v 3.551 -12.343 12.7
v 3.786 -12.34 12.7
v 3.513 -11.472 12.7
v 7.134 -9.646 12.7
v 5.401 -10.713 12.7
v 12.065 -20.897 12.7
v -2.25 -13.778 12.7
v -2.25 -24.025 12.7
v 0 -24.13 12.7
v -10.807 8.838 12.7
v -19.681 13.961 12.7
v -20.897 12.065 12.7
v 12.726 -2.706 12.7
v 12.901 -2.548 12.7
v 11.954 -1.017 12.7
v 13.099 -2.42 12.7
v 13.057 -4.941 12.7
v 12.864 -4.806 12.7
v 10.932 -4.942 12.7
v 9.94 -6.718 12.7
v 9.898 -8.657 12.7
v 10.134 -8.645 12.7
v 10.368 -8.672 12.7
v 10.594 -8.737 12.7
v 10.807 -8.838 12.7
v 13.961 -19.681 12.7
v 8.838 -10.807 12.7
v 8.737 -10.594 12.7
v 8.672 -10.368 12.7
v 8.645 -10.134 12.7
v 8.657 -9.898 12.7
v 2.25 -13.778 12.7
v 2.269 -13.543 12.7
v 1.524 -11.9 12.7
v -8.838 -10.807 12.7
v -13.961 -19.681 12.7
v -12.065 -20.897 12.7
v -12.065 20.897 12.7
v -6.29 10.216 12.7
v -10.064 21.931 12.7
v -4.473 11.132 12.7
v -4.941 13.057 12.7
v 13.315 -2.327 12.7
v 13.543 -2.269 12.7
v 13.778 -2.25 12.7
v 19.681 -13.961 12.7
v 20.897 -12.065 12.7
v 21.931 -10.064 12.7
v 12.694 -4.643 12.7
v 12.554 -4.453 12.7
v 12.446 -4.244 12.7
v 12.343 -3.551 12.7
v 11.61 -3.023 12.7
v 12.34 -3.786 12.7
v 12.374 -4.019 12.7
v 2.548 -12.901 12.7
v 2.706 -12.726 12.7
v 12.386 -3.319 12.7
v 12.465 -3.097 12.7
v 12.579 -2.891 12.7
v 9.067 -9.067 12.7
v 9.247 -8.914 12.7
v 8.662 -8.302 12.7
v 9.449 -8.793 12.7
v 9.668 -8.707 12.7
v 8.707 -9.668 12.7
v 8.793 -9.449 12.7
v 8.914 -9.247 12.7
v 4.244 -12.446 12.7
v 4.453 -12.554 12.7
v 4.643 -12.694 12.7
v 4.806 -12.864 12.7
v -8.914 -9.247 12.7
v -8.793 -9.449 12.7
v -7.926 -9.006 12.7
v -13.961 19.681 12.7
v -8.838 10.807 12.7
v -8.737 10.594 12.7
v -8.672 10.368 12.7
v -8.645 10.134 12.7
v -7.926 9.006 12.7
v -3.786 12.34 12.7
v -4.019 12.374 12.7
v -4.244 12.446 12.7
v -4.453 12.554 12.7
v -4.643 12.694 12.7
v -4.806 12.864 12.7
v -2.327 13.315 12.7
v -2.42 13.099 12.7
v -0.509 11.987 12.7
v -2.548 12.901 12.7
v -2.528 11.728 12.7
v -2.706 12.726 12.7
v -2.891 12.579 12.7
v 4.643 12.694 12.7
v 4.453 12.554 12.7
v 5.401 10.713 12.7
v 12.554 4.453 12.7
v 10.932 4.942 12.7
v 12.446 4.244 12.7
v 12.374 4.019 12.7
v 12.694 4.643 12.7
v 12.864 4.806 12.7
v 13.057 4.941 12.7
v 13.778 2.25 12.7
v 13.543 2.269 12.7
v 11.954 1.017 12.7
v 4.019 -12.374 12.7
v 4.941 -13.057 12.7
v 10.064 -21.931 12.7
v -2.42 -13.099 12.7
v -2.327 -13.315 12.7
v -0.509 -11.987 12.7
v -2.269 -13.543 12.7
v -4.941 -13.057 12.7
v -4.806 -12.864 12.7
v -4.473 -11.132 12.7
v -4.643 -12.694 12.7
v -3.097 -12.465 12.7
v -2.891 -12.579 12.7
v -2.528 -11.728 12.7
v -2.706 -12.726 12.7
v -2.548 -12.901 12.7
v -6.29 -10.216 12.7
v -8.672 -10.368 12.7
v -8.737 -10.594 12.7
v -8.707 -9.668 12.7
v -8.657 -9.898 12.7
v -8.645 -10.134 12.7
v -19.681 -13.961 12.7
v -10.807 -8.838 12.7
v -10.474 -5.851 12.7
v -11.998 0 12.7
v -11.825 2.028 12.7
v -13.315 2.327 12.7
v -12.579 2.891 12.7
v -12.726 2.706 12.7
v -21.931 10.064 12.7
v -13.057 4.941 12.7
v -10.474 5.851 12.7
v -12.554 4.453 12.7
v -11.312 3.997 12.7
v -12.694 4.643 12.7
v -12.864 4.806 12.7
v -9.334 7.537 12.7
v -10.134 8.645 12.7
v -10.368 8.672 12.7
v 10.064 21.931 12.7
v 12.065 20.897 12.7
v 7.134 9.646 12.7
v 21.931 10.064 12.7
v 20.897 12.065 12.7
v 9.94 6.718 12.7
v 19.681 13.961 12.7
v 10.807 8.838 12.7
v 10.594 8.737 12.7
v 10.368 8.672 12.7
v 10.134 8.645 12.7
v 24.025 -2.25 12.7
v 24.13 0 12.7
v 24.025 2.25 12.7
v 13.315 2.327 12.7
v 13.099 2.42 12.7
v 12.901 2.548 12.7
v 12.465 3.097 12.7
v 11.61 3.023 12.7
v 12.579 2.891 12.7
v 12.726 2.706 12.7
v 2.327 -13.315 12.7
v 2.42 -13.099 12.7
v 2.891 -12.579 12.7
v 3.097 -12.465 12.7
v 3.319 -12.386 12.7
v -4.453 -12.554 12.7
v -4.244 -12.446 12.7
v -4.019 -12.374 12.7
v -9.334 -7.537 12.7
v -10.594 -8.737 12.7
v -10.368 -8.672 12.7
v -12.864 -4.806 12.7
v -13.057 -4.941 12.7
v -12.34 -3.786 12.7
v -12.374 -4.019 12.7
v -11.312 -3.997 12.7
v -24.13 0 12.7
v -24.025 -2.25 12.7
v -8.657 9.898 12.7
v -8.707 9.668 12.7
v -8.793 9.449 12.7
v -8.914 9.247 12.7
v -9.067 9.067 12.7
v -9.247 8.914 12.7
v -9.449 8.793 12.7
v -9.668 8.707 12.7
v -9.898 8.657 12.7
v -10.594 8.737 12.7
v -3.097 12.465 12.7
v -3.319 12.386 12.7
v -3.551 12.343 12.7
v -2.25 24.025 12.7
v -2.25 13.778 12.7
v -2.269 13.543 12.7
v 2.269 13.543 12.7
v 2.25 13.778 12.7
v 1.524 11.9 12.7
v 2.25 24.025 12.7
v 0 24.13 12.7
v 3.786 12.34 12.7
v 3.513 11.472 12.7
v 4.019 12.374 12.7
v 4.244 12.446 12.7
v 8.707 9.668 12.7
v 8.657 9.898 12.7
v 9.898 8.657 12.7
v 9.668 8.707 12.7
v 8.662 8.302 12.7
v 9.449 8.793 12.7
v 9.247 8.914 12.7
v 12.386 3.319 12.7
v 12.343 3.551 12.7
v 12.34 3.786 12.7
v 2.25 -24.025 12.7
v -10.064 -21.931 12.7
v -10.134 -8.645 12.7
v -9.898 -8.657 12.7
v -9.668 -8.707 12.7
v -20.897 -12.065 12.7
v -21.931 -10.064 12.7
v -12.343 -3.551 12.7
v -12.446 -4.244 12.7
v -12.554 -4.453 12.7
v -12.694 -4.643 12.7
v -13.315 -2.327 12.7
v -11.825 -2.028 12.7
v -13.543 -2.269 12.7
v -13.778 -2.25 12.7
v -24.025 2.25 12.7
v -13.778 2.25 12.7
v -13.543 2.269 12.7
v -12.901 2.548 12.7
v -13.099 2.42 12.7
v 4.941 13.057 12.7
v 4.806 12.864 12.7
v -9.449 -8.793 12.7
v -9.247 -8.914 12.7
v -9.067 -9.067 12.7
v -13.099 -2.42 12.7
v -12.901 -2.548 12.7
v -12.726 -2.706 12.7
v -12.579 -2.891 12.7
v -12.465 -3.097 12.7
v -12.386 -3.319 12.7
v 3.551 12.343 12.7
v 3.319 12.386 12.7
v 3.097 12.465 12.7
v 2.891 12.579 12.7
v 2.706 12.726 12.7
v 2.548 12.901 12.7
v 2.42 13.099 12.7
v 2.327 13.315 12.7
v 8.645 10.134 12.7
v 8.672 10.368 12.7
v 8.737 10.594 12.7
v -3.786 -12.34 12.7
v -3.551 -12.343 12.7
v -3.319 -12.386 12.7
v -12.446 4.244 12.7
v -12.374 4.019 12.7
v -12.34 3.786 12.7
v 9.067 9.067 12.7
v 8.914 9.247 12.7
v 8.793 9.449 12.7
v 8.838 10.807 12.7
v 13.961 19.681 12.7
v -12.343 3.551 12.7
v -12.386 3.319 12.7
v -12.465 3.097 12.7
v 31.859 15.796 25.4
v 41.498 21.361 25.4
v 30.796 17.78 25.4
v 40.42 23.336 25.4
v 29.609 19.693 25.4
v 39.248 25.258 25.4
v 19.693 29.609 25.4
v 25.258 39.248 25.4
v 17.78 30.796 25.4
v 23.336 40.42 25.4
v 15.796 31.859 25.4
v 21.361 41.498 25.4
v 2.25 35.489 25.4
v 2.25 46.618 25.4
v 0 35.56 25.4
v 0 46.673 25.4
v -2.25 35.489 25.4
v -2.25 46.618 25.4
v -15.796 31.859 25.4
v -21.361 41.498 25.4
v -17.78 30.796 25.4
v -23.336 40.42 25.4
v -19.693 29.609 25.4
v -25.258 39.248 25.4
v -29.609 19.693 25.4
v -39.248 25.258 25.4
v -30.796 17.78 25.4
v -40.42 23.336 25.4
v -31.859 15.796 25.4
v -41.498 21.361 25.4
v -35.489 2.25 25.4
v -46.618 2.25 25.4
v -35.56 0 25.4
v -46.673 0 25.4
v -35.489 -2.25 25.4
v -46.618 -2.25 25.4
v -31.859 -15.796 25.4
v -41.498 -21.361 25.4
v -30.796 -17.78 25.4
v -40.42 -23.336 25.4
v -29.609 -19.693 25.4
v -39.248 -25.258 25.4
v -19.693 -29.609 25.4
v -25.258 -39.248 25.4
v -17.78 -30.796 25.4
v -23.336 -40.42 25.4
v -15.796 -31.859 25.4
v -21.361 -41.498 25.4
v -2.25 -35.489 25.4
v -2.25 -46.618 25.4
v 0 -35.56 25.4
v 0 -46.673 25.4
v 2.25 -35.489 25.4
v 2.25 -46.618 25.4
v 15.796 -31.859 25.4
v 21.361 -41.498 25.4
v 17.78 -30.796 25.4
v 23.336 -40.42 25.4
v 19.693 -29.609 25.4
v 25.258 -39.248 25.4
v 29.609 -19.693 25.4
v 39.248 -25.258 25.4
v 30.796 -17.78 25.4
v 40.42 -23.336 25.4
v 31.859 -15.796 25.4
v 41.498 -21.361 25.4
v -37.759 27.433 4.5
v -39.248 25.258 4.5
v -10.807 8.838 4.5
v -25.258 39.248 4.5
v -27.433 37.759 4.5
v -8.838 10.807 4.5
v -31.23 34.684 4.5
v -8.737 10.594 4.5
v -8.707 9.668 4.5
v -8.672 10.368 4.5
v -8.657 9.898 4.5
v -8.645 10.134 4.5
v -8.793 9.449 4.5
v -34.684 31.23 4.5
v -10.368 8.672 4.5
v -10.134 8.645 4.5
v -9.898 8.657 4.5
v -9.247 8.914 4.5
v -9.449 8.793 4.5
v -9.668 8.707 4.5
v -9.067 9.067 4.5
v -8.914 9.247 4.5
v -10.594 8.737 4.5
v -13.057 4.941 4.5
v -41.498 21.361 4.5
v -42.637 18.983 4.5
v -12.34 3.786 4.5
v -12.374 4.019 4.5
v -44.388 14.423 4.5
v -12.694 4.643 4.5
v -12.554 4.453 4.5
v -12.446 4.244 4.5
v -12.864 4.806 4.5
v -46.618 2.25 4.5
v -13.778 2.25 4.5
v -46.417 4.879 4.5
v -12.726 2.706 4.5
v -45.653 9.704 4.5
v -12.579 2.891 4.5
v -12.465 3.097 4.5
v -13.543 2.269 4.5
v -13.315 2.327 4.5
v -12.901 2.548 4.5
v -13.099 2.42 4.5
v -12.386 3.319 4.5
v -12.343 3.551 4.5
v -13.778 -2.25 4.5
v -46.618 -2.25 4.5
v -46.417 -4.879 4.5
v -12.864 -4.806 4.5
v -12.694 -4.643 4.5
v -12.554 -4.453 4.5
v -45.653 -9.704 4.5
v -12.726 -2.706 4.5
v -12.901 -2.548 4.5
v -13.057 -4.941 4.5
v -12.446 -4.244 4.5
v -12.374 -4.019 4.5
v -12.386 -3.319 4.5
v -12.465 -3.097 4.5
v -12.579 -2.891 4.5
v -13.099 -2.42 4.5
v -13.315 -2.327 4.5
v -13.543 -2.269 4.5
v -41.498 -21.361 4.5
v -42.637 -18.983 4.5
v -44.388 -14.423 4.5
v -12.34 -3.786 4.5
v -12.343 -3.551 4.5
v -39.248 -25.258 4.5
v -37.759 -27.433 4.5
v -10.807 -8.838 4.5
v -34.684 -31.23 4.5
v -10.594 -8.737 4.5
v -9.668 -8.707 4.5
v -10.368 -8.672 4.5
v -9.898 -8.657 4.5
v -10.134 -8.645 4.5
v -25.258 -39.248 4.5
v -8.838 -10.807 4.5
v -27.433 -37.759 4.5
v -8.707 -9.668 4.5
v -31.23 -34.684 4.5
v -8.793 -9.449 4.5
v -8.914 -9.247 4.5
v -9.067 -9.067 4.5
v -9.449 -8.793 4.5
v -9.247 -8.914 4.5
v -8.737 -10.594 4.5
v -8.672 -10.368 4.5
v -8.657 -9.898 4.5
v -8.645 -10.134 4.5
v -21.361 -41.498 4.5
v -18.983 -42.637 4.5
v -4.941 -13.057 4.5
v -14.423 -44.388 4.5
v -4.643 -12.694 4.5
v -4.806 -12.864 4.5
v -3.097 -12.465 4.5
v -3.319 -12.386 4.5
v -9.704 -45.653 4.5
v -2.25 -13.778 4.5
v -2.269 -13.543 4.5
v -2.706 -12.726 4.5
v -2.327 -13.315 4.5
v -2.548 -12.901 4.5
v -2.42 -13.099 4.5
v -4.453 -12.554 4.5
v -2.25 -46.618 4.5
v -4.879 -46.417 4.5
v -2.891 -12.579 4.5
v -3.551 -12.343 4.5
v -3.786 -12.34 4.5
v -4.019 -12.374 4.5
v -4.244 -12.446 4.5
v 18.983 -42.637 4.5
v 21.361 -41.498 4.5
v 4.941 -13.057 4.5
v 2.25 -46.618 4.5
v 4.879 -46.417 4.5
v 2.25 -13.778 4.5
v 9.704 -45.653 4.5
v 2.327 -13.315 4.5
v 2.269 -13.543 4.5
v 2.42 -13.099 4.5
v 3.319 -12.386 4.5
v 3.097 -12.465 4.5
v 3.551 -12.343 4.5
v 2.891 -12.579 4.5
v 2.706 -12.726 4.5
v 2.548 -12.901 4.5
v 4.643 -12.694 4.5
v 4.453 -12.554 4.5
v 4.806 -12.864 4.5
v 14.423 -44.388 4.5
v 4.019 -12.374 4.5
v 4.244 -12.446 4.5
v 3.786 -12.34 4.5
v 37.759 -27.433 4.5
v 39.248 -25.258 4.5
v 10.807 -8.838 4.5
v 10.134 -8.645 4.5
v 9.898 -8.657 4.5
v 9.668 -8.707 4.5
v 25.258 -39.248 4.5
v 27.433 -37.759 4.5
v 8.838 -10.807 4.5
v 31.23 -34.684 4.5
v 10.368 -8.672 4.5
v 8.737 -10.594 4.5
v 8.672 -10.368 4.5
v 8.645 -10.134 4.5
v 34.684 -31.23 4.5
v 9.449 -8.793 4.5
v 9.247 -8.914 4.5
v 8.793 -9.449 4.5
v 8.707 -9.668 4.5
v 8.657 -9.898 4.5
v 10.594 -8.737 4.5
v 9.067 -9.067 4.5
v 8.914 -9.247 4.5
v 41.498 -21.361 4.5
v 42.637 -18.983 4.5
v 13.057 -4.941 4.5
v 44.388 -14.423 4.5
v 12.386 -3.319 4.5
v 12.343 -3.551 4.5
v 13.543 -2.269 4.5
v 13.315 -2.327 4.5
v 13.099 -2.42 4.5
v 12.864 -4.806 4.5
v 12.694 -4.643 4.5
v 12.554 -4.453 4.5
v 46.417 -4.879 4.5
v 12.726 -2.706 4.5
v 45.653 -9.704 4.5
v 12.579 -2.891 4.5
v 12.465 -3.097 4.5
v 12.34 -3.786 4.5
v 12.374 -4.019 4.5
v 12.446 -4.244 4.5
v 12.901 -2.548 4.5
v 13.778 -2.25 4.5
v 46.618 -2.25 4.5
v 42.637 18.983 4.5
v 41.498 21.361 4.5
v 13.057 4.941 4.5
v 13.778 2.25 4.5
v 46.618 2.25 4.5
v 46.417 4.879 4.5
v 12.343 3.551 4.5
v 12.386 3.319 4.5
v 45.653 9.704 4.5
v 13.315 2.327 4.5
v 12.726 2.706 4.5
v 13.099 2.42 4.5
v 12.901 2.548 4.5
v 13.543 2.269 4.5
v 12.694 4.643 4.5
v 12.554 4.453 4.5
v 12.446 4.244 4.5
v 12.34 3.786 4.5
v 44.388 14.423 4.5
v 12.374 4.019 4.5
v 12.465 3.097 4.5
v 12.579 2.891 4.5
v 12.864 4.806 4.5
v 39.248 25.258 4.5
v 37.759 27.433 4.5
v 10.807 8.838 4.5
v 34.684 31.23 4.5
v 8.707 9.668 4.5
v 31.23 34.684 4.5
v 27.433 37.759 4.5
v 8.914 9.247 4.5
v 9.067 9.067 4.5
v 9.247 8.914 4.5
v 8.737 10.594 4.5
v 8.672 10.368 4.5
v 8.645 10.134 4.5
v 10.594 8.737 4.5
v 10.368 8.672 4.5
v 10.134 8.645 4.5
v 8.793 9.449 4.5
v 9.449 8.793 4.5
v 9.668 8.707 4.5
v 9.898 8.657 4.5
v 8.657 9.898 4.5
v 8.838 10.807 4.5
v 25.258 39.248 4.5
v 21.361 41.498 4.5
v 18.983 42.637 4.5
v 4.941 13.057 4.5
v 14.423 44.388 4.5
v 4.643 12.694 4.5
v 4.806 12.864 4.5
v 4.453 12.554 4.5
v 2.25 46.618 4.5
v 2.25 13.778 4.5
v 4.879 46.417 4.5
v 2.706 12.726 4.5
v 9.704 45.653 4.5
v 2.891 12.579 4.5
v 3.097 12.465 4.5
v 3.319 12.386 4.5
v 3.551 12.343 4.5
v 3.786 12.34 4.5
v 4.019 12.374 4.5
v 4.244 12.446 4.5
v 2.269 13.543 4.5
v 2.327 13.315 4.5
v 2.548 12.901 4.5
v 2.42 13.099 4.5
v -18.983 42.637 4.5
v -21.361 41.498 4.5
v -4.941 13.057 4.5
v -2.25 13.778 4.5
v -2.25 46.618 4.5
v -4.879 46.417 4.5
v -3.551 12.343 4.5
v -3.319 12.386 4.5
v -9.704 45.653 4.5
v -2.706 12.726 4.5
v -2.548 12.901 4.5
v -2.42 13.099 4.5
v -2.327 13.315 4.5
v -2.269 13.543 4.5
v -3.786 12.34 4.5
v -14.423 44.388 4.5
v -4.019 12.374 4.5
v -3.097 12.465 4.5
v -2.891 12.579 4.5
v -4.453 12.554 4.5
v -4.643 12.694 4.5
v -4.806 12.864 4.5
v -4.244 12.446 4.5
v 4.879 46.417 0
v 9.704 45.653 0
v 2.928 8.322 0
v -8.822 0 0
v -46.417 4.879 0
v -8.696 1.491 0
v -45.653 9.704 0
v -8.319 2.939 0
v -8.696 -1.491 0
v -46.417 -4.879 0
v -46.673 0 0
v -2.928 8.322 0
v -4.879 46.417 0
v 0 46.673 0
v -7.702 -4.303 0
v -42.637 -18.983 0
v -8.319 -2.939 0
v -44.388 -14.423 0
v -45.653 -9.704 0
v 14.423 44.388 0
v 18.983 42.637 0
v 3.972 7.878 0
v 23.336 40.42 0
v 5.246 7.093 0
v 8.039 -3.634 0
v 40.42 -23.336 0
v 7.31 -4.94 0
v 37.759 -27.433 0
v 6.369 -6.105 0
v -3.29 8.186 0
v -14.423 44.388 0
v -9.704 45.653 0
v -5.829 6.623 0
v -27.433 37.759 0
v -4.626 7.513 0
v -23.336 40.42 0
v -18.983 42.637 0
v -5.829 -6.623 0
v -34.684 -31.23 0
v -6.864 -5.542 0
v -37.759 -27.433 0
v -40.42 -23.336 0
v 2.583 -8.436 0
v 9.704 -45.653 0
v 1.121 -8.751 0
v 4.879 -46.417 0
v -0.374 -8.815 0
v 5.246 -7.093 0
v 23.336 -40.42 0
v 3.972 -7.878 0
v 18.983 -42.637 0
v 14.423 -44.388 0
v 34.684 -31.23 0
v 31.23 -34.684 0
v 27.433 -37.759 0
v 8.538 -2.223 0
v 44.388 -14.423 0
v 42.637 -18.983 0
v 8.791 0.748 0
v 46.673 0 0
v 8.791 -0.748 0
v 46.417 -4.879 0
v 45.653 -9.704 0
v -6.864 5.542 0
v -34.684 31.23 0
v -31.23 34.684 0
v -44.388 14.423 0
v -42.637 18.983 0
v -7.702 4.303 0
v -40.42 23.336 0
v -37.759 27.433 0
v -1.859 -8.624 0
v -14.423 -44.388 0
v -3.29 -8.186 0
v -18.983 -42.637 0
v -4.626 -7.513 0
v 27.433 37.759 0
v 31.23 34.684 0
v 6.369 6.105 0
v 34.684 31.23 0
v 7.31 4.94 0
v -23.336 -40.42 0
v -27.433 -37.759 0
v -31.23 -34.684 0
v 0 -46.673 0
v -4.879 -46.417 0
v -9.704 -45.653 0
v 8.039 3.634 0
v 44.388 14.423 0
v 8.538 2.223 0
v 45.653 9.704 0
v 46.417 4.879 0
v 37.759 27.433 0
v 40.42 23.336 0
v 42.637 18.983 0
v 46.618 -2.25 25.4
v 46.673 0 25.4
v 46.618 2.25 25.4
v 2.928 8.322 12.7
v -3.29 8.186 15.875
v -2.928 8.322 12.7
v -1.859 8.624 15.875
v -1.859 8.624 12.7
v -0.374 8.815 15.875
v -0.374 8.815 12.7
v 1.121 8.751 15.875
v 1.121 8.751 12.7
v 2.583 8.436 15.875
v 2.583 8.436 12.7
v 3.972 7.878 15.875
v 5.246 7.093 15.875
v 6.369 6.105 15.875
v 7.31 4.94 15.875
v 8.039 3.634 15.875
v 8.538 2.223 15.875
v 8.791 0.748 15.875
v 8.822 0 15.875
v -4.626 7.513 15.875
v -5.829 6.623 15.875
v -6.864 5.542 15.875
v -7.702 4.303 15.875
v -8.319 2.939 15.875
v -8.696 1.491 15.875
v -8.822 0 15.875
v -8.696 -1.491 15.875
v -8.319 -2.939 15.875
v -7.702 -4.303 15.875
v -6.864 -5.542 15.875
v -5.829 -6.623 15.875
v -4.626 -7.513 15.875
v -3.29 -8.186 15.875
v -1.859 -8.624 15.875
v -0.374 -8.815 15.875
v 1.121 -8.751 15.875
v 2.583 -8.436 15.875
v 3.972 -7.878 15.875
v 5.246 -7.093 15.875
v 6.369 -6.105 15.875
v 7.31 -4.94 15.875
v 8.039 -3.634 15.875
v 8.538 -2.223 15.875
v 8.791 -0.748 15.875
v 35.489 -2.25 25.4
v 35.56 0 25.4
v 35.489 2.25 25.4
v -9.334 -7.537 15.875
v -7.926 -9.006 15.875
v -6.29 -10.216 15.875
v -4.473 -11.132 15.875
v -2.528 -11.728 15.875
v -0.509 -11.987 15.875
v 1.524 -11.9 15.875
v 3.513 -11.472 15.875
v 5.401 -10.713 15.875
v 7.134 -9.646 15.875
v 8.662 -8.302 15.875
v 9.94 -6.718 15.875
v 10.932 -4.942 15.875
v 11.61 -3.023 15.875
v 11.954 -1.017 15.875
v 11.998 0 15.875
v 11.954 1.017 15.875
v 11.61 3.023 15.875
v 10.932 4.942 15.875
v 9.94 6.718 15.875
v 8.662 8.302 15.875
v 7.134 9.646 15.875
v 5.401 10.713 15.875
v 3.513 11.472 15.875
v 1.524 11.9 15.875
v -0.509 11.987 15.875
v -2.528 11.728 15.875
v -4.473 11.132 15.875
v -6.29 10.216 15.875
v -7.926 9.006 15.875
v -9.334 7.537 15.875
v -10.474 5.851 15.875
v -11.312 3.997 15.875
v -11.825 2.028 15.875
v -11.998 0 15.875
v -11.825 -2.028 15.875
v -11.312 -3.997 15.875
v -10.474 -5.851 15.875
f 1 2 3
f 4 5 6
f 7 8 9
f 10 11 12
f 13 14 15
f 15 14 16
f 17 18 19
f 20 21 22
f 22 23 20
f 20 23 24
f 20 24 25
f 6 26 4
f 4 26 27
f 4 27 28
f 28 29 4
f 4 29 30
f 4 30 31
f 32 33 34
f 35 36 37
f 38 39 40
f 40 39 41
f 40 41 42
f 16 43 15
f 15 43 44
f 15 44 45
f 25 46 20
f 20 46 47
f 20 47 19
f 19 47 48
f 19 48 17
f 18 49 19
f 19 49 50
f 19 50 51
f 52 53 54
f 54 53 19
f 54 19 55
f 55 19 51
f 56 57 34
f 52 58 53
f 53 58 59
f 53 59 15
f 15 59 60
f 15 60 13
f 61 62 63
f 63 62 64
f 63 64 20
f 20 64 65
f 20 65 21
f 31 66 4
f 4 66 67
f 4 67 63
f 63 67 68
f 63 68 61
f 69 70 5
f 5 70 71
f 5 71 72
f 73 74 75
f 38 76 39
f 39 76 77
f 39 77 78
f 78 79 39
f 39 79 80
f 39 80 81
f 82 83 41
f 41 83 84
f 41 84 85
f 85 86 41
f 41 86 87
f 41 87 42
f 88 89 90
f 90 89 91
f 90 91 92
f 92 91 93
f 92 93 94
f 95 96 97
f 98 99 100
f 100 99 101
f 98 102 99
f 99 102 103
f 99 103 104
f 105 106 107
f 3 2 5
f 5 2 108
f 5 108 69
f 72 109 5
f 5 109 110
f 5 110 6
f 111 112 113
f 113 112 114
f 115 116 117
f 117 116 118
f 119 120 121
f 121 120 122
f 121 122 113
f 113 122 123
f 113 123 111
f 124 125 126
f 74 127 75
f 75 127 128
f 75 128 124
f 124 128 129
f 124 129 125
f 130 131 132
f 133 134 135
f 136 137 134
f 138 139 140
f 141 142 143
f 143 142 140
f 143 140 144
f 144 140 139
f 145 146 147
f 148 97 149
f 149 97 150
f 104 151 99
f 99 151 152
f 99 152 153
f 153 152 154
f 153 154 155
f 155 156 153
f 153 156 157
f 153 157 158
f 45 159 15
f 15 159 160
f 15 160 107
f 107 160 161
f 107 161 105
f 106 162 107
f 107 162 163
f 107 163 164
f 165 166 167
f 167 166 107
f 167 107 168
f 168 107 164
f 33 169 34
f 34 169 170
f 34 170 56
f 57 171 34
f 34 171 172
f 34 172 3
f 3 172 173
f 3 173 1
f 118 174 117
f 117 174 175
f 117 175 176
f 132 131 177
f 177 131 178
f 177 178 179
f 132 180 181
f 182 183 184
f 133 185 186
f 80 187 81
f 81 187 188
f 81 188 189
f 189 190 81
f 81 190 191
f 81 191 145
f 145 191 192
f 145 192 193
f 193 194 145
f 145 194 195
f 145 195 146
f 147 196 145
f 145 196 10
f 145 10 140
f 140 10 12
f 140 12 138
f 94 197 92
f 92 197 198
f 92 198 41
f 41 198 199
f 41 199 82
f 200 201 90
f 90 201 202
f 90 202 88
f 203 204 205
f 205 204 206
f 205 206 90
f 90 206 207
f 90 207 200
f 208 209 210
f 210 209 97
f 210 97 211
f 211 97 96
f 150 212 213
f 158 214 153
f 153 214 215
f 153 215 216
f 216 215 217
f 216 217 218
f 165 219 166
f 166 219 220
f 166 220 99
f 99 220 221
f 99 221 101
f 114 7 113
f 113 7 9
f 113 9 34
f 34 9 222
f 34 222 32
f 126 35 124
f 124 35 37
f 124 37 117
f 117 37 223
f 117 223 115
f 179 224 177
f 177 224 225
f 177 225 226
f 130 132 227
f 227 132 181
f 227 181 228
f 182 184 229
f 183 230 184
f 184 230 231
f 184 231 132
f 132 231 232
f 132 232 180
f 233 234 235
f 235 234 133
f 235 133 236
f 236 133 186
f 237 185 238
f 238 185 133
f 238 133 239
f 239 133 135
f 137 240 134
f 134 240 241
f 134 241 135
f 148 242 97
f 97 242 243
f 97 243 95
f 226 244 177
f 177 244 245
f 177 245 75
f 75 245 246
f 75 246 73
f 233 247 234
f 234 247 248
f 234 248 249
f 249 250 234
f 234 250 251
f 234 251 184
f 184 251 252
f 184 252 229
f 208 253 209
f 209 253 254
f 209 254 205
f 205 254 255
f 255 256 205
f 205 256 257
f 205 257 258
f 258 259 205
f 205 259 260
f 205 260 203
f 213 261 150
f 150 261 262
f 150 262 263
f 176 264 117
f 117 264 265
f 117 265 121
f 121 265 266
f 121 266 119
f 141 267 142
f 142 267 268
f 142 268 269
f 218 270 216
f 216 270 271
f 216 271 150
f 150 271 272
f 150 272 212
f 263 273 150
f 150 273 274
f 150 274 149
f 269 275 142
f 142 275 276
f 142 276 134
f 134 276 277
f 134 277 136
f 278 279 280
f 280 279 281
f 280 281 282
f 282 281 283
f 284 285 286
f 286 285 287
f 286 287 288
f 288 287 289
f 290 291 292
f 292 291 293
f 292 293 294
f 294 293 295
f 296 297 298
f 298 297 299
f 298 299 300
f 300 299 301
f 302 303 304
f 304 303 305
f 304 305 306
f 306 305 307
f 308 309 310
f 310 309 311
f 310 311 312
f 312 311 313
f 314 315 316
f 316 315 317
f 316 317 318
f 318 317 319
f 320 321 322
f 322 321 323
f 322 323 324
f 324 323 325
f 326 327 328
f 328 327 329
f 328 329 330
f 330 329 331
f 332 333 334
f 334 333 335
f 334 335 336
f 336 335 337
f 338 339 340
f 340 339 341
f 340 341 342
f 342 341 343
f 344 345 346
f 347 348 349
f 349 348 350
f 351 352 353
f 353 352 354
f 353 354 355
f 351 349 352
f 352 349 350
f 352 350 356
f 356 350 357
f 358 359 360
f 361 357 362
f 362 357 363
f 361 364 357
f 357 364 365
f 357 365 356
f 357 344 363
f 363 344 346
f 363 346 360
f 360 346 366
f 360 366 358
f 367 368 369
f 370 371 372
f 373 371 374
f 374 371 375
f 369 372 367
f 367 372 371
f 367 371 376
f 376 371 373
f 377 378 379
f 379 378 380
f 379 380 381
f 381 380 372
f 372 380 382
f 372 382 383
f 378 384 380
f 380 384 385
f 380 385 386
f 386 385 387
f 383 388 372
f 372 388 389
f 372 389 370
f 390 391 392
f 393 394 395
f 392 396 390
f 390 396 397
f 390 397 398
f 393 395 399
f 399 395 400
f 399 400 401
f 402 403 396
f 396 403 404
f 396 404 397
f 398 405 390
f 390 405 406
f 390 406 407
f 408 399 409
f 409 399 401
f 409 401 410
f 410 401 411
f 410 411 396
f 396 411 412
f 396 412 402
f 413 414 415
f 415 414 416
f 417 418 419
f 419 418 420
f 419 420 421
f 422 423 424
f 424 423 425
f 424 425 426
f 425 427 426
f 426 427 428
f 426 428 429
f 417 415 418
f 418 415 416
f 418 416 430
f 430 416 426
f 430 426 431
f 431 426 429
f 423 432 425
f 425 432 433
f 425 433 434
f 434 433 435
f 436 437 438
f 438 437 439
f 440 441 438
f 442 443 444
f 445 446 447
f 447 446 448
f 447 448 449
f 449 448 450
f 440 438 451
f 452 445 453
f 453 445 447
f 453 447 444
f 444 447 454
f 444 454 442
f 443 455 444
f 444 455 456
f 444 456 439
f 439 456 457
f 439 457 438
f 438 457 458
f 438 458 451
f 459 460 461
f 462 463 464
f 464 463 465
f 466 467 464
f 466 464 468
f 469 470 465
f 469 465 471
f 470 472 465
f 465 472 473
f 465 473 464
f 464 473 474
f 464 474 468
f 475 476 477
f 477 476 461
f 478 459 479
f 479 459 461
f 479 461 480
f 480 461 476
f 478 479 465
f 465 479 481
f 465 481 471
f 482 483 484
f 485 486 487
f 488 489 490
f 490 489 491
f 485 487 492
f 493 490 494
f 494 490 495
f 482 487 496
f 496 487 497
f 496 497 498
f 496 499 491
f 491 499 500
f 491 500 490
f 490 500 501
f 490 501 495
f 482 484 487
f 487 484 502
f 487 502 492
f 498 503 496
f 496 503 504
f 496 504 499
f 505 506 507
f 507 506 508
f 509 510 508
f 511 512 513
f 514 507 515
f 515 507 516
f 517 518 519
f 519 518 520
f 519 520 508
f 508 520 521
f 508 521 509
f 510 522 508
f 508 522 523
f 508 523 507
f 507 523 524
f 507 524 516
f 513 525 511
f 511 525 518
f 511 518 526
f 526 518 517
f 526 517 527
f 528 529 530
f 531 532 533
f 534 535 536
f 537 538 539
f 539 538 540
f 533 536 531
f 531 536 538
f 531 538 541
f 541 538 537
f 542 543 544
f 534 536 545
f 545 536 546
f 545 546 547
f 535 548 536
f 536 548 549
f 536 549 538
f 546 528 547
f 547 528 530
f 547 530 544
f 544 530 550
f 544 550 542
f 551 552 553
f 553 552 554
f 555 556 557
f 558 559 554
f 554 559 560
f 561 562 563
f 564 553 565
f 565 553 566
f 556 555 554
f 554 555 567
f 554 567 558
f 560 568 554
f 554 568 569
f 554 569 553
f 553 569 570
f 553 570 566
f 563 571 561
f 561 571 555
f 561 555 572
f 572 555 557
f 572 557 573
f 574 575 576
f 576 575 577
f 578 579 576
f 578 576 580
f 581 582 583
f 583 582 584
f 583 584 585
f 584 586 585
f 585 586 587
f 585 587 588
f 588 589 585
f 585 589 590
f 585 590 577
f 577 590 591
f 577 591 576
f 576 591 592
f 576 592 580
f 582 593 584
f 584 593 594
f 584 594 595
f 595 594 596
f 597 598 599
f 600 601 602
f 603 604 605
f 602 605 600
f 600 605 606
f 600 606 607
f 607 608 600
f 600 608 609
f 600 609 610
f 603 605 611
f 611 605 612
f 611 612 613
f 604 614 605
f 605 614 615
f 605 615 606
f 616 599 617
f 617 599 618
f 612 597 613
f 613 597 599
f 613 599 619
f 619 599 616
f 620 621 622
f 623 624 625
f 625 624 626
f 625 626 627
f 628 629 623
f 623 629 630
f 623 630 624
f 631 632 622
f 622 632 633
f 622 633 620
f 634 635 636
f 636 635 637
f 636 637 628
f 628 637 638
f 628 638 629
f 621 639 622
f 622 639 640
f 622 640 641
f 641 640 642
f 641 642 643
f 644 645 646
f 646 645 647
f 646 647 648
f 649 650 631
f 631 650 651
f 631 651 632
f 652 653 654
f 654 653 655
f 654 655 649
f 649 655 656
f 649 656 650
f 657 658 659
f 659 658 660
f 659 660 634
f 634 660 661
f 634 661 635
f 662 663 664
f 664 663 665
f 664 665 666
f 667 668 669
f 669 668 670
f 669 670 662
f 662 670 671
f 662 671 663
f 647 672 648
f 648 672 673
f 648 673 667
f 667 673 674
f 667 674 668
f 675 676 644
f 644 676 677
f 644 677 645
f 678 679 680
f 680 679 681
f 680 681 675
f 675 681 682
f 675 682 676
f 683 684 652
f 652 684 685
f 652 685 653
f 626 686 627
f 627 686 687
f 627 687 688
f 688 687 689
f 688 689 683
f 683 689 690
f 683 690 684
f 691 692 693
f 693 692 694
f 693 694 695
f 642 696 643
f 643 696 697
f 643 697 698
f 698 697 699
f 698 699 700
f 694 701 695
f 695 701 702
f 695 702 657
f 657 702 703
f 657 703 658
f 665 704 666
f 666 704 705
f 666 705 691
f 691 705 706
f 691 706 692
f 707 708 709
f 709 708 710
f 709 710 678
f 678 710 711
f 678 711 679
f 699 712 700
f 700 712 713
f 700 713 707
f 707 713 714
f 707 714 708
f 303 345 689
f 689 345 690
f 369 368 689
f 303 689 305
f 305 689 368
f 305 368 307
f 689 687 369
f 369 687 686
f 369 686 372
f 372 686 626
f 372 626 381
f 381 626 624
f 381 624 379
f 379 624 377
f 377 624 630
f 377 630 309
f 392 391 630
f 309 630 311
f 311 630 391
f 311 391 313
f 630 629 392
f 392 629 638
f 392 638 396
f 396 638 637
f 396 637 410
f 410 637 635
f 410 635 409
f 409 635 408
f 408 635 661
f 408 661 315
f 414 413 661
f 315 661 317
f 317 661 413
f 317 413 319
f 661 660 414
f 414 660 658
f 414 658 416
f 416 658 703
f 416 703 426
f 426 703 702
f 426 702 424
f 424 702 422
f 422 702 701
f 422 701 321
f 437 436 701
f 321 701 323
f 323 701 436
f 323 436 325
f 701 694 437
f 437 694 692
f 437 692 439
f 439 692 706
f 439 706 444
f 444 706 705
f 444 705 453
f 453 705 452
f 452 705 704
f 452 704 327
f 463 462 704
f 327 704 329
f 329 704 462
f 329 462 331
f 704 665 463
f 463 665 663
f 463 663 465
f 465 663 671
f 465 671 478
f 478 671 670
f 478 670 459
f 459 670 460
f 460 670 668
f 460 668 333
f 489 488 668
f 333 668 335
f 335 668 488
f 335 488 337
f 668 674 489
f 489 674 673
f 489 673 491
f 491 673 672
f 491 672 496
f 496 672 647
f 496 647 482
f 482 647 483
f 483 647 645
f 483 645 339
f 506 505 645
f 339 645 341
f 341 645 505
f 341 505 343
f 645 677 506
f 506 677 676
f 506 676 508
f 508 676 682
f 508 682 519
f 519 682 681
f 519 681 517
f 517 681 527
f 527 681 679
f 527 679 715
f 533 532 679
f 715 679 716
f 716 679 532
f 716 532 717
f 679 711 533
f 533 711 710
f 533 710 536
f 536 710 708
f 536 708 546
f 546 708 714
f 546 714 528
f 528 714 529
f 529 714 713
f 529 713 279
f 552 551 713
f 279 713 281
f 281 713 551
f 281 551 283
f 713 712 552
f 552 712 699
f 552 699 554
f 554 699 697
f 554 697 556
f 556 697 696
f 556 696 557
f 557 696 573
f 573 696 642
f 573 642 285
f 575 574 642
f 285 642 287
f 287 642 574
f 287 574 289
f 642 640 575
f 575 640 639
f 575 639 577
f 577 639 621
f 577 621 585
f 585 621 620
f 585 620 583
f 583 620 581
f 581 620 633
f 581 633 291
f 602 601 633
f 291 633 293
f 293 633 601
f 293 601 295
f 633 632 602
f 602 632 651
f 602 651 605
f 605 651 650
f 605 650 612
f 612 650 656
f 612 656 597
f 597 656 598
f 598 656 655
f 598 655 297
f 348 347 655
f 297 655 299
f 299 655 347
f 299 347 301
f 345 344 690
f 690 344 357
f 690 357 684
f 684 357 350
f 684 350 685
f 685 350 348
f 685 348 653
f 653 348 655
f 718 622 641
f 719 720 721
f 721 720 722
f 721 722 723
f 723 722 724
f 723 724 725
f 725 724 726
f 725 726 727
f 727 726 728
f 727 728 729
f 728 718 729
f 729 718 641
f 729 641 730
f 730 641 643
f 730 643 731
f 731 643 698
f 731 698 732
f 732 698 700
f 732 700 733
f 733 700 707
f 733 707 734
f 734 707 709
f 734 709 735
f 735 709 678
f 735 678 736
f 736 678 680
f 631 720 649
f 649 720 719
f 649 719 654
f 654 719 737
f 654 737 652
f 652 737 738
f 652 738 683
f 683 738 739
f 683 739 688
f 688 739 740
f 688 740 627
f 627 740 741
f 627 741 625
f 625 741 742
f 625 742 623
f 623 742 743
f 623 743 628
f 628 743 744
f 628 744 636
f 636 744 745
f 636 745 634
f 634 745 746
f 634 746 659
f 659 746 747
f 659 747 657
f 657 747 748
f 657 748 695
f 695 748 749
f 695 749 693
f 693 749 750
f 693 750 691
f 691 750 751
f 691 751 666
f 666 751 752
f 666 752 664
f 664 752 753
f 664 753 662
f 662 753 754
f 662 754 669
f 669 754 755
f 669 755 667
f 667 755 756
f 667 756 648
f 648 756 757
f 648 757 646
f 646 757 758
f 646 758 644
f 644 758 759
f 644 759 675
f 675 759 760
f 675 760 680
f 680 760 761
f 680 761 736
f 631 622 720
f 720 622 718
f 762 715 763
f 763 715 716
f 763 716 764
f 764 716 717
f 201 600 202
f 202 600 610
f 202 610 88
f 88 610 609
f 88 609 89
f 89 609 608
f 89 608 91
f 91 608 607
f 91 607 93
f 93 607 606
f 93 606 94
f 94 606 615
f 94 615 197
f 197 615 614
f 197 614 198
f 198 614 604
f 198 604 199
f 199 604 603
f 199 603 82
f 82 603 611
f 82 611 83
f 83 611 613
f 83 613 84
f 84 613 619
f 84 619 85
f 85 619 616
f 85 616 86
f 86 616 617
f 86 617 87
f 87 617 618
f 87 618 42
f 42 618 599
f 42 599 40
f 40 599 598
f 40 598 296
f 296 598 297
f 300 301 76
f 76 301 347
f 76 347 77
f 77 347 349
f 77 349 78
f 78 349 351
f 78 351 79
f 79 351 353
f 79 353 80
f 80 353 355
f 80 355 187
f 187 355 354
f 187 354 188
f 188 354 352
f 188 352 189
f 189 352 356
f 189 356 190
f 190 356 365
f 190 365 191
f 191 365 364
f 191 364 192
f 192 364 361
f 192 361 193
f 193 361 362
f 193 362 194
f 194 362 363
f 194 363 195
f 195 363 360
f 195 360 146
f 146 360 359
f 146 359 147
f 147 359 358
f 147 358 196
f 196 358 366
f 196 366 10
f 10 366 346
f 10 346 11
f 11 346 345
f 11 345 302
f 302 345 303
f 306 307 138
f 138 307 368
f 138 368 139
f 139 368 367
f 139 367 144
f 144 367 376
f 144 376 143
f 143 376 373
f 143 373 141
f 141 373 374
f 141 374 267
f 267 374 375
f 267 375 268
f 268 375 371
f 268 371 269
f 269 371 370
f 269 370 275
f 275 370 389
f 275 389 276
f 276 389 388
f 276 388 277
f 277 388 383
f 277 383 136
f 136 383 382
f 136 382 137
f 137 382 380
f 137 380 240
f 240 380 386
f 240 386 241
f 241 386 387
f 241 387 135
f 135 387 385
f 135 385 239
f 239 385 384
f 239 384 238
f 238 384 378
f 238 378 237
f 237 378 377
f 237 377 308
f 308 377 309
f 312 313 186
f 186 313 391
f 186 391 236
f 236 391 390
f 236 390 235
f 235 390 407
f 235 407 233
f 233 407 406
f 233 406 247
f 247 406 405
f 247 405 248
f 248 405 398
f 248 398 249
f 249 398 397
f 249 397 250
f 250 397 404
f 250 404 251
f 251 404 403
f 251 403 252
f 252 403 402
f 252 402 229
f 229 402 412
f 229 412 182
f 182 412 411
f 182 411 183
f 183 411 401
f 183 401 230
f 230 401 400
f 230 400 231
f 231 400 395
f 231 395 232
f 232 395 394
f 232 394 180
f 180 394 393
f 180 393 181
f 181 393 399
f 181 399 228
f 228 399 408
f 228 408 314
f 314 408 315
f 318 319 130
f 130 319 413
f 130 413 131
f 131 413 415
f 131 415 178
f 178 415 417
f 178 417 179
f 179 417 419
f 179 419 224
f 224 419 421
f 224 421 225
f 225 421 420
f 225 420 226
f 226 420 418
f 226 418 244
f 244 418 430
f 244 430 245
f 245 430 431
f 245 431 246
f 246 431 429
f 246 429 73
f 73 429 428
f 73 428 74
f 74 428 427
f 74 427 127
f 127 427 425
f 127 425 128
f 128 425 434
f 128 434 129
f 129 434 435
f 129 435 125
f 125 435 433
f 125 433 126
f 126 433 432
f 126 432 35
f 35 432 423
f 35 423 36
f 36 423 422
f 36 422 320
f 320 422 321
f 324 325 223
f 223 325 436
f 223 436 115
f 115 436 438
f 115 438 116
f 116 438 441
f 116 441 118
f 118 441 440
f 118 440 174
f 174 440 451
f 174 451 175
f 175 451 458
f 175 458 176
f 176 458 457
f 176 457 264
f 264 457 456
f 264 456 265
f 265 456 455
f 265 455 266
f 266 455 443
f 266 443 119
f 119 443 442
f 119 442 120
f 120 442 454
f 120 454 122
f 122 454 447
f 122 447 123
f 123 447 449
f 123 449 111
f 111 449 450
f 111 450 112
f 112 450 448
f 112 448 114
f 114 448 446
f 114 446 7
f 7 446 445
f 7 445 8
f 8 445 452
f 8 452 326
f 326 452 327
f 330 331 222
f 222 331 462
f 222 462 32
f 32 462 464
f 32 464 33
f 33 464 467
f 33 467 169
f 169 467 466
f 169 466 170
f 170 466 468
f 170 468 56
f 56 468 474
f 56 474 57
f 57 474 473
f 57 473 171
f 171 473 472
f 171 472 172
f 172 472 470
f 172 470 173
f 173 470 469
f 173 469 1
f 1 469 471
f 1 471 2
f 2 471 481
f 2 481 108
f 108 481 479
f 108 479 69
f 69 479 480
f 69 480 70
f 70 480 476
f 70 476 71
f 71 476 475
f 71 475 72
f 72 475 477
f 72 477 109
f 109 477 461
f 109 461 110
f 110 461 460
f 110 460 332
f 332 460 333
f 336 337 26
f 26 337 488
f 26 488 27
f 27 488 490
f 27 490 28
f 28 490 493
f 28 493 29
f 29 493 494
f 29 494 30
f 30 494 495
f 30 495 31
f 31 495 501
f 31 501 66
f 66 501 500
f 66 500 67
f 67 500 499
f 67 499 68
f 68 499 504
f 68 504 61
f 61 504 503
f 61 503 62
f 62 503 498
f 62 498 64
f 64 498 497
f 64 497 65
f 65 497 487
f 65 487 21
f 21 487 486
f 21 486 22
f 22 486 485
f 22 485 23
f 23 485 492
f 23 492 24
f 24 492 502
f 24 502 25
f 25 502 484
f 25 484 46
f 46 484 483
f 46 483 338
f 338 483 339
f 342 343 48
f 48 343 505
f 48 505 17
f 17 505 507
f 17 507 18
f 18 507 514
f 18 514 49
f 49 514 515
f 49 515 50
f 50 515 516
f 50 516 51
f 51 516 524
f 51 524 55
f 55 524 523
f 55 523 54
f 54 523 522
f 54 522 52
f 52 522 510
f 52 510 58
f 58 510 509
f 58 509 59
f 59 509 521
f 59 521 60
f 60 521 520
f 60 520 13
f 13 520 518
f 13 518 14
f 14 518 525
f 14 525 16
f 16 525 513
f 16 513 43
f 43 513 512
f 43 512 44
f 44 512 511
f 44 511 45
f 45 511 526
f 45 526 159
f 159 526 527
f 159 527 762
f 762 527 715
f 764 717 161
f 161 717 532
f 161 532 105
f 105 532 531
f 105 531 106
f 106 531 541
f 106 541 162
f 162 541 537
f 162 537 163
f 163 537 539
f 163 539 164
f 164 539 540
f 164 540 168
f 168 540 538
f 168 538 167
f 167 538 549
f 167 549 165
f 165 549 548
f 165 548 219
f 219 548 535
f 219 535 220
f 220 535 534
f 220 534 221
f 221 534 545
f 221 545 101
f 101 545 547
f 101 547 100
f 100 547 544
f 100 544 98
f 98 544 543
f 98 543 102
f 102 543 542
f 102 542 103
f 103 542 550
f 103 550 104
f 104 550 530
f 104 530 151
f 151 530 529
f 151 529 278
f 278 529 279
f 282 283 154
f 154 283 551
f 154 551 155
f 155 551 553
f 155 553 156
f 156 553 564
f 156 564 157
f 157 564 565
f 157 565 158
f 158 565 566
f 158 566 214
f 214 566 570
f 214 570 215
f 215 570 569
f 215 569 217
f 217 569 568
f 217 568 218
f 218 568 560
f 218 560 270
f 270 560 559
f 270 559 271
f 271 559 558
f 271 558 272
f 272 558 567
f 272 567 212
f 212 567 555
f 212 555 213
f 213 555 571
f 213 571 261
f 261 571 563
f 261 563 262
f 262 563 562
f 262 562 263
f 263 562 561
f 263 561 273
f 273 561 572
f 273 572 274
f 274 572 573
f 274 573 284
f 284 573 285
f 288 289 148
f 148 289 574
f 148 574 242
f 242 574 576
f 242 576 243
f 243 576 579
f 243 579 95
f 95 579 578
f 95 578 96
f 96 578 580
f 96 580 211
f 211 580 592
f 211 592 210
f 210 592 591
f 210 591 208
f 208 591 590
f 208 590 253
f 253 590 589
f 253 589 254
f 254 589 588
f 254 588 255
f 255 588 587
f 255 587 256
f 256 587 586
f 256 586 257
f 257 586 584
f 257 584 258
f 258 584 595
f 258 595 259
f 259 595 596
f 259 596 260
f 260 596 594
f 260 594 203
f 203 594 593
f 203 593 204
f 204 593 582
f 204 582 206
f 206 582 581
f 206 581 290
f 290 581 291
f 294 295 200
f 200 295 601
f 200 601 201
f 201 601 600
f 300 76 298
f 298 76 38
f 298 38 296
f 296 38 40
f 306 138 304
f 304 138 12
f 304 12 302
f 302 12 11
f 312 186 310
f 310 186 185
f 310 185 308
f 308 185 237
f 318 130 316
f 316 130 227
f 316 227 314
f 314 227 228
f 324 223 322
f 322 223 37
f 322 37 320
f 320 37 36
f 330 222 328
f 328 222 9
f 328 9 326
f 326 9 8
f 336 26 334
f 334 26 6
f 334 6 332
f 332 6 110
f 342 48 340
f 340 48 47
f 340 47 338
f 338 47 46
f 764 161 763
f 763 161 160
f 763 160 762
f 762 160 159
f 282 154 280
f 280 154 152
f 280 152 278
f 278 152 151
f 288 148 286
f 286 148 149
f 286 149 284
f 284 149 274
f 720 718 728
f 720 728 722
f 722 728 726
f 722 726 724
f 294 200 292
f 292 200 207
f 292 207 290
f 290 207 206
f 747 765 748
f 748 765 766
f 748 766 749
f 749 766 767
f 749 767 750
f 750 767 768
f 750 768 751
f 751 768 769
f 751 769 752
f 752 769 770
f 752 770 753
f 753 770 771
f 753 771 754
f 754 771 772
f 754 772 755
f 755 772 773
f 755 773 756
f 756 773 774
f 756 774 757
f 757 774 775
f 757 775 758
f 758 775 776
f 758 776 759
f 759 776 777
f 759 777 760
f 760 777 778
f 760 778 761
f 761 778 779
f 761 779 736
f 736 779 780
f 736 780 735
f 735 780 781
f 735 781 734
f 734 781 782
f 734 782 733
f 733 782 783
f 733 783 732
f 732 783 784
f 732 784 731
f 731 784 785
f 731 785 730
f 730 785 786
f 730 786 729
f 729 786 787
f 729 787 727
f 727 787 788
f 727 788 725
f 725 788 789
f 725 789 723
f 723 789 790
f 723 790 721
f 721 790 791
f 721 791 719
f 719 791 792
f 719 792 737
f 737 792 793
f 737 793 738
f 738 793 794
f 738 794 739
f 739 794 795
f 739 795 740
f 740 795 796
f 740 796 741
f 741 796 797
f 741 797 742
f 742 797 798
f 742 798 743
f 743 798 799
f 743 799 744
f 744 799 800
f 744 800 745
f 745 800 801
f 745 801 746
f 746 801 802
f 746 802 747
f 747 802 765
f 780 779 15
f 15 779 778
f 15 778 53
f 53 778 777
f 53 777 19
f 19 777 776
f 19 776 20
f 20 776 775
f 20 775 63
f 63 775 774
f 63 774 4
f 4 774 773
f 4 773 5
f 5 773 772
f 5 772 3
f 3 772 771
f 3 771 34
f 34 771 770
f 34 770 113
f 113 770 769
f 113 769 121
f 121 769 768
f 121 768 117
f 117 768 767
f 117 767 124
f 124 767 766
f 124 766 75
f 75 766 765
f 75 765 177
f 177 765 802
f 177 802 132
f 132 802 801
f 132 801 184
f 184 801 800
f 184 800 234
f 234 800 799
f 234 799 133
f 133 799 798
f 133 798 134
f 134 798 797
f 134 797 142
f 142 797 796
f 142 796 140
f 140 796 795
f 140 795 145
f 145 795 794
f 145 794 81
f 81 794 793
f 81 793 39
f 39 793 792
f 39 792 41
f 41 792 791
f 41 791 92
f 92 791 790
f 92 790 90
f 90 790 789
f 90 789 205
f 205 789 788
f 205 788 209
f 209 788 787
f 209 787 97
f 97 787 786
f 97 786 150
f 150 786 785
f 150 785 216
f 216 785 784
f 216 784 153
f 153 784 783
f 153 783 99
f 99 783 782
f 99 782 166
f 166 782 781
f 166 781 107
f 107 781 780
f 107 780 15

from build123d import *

# Parameters (mm, degrees)
SKETCH1_R           = 46.6725
BOSS_EXTRUDE1_DEPTH = 4.5
BOSS_EXTRUDE2_START = -4.5
BOSS_EXTRUDE2_DEPTH = 25.4
SKETCH4_R           = 11.9975
SKETCH4_R_2         = 8.8225
BOSS_EXTRUDE3_DEPTH = 3.175


with BuildPart() as part:
    # Sketch1 → Boss-Extrude1 (new body)
    with BuildSketch(Plane.XY):
        Circle(SKETCH1_R)
        with BuildLine():
            Line((-2.927883194, 8.3225), (2.927883194, 8.3225))
            ThreePointArc((2.927883194, 8.3225), (0, -8.8225), (-2.927883194, 8.3225))
        make_face(mode=Mode.SUBTRACT)
    extrude(amount=BOSS_EXTRUDE1_DEPTH)

    # Sketch2 → Boss-Extrude2 (add)
    with BuildSketch(Plane.XY.offset(4.5).offset(BOSS_EXTRUDE2_START)):
        with BuildLine():
            Line((-2.25, 46.618234161), (-2.25, 13.778350254))
            ThreePointArc((-2.25, 13.778350254), (-3.318707206, 12.385583908), (-4.940617969, 13.057401343))
            Line((-4.940617969, 13.057401343), (-21.360559922, 41.497575063))
            ThreePointArc((-21.360559922, 41.497575063), (-23.33625, 40.419570658), (-25.257674239, 39.247575063))
            Line((-25.257674239, 39.247575063), (-8.837732286, 10.807401343))
            ThreePointArc((-8.837732286, 10.807401343), (-9.066876702, 9.066876702), (-10.807401343, 8.837732286))
            Line((-10.807401343, 8.837732286), (-39.247575063, 25.257674239))
            ThreePointArc((-39.247575063, 25.257674239), (-40.419570658, 23.33625), (-41.497575063, 21.360559922))
            Line((-41.497575063, 21.360559922), (-13.057401343, 4.940617969))
            ThreePointArc((-13.057401343, 4.940617969), (-12.385583908, 3.318707206), (-13.778350254, 2.25))
            Line((-13.778350254, 2.25), (-46.618234161, 2.25))
            ThreePointArc((-46.618234161, 2.25), (-46.6725, 0), (-46.618234161, -2.25))
            Line((-46.618234161, -2.25), (-13.778350254, -2.25))
            ThreePointArc((-13.778350254, -2.25), (-12.385583908, -3.318707206), (-13.057401343, -4.940617969))
            Line((-13.057401343, -4.940617969), (-41.497575063, -21.360559922))
            ThreePointArc((-41.497575063, -21.360559922), (-40.419570658, -23.33625), (-39.247575063, -25.257674239))
            Line((-39.247575063, -25.257674239), (-10.807401343, -8.837732286))
            ThreePointArc((-10.807401343, -8.837732286), (-9.066876702, -9.066876702), (-8.837732286, -10.807401343))
            Line((-8.837732286, -10.807401343), (-25.257674239, -39.247575063))
            ThreePointArc((-25.257674239, -39.247575063), (-23.33625, -40.419570658), (-21.360559922, -41.497575063))
            Line((-21.360559922, -41.497575063), (-4.940617969, -13.057401343))
            ThreePointArc((-4.940617969, -13.057401343), (-3.318707206, -12.385583908), (-2.25, -13.778350254))
            Line((-2.25, -13.778350254), (-2.25, -46.618234161))
            ThreePointArc((-2.25, -46.618234161), (0, -46.6725), (2.25, -46.618234161))
            Line((2.25, -46.618234161), (2.25, -13.778350254))
            ThreePointArc((2.25, -13.778350254), (3.318707206, -12.385583908), (4.940617969, -13.057401343))
            Line((4.940617969, -13.057401343), (21.360559922, -41.497575063))
            ThreePointArc((21.360559922, -41.497575063), (23.33625, -40.419570658), (25.257674239, -39.247575063))
            Line((25.257674239, -39.247575063), (8.837732286, -10.807401343))
            ThreePointArc((8.837732286, -10.807401343), (9.066876702, -9.066876702), (10.807401343, -8.837732286))
            Line((10.807401343, -8.837732286), (39.247575063, -25.257674239))
            ThreePointArc((39.247575063, -25.257674239), (40.419570658, -23.33625), (41.497575063, -21.360559922))
            Line((41.497575063, -21.360559922), (13.057401343, -4.940617969))
            ThreePointArc((13.057401343, -4.940617969), (12.385583908, -3.318707206), (13.778350254, -2.25))
            Line((13.778350254, -2.25), (46.618234161, -2.25))
            ThreePointArc((46.618234161, -2.25), (46.6725, 0), (46.618234161, 2.25))
            Line((46.618234161, 2.25), (13.778350254, 2.25))
            ThreePointArc((13.778350254, 2.25), (12.385583908, 3.318707206), (13.057401343, 4.940617969))
            Line((13.057401343, 4.940617969), (41.497575063, 21.360559922))
            ThreePointArc((41.497575063, 21.360559922), (40.419570658, 23.33625), (39.247575063, 25.257674239))
            Line((39.247575063, 25.257674239), (10.807401343, 8.837732286))
            ThreePointArc((10.807401343, 8.837732286), (9.066876702, 9.066876702), (8.837732286, 10.807401343))
            Line((8.837732286, 10.807401343), (25.257674239, 39.247575063))
            ThreePointArc((25.257674239, 39.247575063), (23.33625, 40.419570658), (21.360559922, 41.497575063))
            Line((21.360559922, 41.497575063), (4.940617969, 13.057401343))
            ThreePointArc((4.940617969, 13.057401343), (3.318707206, 12.385583908), (2.25, 13.778350254))
            Line((2.25, 13.778350254), (2.25, 46.618234161))
            ThreePointArc((2.25, 46.618234161), (0, 46.6725), (-2.25, 46.618234161))
        make_face()
        with BuildLine():
            Line((2.927883194, 8.3225), (-2.927883194, 8.3225))
            ThreePointArc((-2.927883194, 8.3225), (0, -8.8225), (2.927883194, 8.3225))
        make_face(mode=Mode.SUBTRACT)
    extrude(amount=BOSS_EXTRUDE2_DEPTH)

    # Sketch3 → Cut-Revolve1 (revolve, cut)
    with BuildSketch(Plane(origin=(0, 0, 0), x_dir=(1, 0, 0), z_dir=(0, 1, 0)), mode=Mode.PRIVATE) as cut_revolve1_sk:
        Polygon((-24.13, -12.7), (-6.35, -12.7), (-6.35, -25.4), (-35.56, -25.4), align=None)
    revolve(cut_revolve1_sk.sketch.rotate(Axis((0, 0, 0), (0, 0, 1)), 2.76320082), axis=Axis((0, 0, 0), (0, 0, 1)), mode=Mode.SUBTRACT)

    # Sketch4 → Boss-Extrude3 (add)
    with BuildSketch(Plane.XY.offset(12.7)):
        with Locations(Location((0, 0, 0), (0, 0, 180))):
            Circle(SKETCH4_R)
        with Locations(Location((0, 0, 0), (0, 0, 109.382041685))):
            Circle(SKETCH4_R_2, mode=Mode.SUBTRACT)
    extrude(amount=BOSS_EXTRUDE3_DEPTH)


solid = part.part
